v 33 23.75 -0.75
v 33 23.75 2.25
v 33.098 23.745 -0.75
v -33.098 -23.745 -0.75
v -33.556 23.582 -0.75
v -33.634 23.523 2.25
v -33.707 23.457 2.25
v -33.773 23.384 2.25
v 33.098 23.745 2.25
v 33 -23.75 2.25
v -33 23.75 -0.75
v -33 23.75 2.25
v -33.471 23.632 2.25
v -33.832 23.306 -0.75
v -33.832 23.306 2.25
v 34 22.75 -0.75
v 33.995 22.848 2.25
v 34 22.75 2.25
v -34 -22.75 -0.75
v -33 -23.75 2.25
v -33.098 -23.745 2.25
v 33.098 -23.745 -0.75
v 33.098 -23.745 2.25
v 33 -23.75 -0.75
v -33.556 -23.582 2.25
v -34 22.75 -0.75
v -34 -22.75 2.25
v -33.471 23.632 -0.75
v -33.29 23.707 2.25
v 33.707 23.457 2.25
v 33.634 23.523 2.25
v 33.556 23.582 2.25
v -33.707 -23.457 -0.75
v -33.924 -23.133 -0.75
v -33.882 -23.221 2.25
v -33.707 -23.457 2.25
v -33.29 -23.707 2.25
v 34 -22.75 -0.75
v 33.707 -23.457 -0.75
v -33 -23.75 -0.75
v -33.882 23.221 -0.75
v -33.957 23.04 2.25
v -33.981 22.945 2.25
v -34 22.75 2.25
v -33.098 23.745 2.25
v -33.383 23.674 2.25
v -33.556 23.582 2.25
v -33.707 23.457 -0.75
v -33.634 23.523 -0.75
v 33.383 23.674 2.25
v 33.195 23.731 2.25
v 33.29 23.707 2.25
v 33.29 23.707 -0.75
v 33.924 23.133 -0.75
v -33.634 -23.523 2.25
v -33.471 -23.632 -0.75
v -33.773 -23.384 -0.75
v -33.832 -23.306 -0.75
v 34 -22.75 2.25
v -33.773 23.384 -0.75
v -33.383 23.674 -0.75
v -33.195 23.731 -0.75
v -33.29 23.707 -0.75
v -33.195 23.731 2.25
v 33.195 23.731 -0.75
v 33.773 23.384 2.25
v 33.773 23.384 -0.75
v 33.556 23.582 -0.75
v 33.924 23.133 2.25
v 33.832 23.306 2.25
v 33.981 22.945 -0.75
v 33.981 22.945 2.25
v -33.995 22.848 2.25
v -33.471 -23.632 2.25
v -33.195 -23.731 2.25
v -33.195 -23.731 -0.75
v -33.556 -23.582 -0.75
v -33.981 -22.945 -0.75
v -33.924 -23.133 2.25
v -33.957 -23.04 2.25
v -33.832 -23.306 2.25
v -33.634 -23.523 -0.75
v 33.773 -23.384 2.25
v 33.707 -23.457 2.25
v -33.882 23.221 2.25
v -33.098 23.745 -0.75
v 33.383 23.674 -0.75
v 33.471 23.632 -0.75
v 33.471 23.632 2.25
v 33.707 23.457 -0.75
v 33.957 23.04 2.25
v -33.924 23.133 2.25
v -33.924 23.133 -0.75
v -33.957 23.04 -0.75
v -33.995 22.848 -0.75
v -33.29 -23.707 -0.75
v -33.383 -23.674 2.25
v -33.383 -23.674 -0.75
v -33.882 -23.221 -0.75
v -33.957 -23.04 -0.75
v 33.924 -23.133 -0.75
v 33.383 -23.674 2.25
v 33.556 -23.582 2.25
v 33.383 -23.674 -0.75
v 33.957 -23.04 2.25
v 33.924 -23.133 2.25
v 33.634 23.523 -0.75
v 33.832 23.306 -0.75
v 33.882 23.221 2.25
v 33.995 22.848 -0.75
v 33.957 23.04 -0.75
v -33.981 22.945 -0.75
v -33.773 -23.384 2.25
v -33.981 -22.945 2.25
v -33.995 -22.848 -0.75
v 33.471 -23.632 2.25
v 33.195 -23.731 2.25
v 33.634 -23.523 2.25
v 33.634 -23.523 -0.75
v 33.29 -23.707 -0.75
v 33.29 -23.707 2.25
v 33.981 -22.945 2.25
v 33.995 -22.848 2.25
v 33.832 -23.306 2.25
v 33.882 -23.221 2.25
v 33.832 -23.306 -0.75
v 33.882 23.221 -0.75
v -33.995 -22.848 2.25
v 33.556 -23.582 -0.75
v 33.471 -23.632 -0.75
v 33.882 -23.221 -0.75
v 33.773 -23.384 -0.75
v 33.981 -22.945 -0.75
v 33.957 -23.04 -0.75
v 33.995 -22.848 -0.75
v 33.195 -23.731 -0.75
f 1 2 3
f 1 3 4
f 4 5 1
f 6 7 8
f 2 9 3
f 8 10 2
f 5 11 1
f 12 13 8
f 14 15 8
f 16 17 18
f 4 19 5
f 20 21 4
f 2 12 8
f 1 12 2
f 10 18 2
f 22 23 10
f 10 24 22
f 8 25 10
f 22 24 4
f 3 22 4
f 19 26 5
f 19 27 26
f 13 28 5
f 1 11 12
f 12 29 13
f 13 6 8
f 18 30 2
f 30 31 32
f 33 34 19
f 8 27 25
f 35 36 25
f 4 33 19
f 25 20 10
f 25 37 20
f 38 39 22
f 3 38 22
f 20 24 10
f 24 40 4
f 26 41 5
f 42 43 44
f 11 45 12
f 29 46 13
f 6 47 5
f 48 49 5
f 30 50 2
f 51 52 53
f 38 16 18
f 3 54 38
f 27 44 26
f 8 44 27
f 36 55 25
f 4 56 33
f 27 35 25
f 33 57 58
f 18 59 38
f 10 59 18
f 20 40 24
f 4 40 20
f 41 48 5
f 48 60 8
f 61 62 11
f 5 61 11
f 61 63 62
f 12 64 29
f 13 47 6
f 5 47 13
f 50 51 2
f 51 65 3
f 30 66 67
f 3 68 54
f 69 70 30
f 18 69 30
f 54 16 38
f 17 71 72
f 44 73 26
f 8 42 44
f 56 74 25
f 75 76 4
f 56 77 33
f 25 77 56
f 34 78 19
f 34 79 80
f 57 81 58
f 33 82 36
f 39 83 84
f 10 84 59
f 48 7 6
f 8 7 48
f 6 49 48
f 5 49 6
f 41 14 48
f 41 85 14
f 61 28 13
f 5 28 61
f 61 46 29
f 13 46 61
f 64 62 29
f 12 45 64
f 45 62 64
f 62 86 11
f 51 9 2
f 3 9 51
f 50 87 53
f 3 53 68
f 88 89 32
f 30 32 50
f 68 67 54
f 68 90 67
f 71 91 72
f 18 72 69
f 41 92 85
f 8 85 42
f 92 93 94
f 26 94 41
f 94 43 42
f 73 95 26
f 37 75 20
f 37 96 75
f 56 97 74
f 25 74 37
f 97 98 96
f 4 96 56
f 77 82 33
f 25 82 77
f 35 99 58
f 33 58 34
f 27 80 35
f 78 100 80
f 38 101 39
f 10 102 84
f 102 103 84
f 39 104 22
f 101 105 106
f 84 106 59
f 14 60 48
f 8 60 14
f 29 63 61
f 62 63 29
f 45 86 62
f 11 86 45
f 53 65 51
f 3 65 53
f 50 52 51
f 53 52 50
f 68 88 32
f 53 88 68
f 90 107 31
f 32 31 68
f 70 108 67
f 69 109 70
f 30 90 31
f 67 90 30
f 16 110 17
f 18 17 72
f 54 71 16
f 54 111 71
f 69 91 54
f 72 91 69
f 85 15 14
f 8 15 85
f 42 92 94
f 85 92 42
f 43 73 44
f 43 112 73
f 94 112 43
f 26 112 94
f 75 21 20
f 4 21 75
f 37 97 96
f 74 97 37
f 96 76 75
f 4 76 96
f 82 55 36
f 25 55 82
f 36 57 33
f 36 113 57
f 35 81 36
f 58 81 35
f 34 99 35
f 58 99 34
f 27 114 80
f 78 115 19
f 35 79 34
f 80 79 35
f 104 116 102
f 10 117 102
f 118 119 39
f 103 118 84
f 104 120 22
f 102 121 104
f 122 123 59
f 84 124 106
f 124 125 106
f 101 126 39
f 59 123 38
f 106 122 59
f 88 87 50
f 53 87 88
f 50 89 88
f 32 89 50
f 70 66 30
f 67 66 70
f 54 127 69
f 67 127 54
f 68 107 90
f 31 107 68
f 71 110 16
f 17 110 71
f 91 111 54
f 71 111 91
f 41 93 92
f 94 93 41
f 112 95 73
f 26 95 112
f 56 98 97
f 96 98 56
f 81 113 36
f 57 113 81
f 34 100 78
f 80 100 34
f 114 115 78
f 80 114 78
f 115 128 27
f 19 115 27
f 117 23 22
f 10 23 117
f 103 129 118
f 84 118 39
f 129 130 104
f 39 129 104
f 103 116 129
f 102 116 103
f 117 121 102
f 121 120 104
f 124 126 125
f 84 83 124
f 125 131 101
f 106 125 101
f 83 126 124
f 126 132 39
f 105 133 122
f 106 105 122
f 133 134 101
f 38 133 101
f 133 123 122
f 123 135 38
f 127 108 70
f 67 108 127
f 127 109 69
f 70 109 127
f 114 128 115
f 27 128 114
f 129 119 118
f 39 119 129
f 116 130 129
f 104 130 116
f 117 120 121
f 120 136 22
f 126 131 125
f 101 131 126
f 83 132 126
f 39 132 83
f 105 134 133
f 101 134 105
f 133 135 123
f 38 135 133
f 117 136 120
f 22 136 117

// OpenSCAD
// 68mm x 47.5mm x 3mm 平板
// 单位: mm

length = 68;
width = 47.5;
thickness = 3;

// 倒角 (圆角半径)
$fn = 64;

module plate() {
    minkowski() {
        cube([length - 2, width - 2, thickness/2], center = true);
        cylinder(r = 1, h = thickness/2);
    }
}

color("SteelBlue")
    translate([0, 0, 0])
        plate();

// 中心标记
%color("Red")
    translate([0, 0, thickness/2 + 0.1])
        cylinder(d = 1, h = 0.1);
